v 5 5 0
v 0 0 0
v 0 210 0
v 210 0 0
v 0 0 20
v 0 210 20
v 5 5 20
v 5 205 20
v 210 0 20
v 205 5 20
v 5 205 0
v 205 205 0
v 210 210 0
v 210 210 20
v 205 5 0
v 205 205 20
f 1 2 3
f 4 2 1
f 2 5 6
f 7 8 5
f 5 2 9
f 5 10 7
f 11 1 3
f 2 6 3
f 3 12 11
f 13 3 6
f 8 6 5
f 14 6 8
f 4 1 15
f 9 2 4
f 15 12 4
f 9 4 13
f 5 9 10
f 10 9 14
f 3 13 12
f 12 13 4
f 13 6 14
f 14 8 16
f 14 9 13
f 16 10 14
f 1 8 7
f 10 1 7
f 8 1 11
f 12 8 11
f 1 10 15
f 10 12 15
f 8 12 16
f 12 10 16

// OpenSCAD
// Frame for city model
// Outer size: 210.0mm x 210.0mm x 20.0mm
// Inner size: 200.0mm x 200.0mm x 20.0mm
// Frame width: 5mm

difference() {
    // Outer block (10mm larger than main model)
    cube([210.0, 210.0, 20.0]);
    
    // Inner cutout (sized to match main model exactly)
    translate([5, 5, 0])
        cube([200.0, 200.0, 20.0]);
}
